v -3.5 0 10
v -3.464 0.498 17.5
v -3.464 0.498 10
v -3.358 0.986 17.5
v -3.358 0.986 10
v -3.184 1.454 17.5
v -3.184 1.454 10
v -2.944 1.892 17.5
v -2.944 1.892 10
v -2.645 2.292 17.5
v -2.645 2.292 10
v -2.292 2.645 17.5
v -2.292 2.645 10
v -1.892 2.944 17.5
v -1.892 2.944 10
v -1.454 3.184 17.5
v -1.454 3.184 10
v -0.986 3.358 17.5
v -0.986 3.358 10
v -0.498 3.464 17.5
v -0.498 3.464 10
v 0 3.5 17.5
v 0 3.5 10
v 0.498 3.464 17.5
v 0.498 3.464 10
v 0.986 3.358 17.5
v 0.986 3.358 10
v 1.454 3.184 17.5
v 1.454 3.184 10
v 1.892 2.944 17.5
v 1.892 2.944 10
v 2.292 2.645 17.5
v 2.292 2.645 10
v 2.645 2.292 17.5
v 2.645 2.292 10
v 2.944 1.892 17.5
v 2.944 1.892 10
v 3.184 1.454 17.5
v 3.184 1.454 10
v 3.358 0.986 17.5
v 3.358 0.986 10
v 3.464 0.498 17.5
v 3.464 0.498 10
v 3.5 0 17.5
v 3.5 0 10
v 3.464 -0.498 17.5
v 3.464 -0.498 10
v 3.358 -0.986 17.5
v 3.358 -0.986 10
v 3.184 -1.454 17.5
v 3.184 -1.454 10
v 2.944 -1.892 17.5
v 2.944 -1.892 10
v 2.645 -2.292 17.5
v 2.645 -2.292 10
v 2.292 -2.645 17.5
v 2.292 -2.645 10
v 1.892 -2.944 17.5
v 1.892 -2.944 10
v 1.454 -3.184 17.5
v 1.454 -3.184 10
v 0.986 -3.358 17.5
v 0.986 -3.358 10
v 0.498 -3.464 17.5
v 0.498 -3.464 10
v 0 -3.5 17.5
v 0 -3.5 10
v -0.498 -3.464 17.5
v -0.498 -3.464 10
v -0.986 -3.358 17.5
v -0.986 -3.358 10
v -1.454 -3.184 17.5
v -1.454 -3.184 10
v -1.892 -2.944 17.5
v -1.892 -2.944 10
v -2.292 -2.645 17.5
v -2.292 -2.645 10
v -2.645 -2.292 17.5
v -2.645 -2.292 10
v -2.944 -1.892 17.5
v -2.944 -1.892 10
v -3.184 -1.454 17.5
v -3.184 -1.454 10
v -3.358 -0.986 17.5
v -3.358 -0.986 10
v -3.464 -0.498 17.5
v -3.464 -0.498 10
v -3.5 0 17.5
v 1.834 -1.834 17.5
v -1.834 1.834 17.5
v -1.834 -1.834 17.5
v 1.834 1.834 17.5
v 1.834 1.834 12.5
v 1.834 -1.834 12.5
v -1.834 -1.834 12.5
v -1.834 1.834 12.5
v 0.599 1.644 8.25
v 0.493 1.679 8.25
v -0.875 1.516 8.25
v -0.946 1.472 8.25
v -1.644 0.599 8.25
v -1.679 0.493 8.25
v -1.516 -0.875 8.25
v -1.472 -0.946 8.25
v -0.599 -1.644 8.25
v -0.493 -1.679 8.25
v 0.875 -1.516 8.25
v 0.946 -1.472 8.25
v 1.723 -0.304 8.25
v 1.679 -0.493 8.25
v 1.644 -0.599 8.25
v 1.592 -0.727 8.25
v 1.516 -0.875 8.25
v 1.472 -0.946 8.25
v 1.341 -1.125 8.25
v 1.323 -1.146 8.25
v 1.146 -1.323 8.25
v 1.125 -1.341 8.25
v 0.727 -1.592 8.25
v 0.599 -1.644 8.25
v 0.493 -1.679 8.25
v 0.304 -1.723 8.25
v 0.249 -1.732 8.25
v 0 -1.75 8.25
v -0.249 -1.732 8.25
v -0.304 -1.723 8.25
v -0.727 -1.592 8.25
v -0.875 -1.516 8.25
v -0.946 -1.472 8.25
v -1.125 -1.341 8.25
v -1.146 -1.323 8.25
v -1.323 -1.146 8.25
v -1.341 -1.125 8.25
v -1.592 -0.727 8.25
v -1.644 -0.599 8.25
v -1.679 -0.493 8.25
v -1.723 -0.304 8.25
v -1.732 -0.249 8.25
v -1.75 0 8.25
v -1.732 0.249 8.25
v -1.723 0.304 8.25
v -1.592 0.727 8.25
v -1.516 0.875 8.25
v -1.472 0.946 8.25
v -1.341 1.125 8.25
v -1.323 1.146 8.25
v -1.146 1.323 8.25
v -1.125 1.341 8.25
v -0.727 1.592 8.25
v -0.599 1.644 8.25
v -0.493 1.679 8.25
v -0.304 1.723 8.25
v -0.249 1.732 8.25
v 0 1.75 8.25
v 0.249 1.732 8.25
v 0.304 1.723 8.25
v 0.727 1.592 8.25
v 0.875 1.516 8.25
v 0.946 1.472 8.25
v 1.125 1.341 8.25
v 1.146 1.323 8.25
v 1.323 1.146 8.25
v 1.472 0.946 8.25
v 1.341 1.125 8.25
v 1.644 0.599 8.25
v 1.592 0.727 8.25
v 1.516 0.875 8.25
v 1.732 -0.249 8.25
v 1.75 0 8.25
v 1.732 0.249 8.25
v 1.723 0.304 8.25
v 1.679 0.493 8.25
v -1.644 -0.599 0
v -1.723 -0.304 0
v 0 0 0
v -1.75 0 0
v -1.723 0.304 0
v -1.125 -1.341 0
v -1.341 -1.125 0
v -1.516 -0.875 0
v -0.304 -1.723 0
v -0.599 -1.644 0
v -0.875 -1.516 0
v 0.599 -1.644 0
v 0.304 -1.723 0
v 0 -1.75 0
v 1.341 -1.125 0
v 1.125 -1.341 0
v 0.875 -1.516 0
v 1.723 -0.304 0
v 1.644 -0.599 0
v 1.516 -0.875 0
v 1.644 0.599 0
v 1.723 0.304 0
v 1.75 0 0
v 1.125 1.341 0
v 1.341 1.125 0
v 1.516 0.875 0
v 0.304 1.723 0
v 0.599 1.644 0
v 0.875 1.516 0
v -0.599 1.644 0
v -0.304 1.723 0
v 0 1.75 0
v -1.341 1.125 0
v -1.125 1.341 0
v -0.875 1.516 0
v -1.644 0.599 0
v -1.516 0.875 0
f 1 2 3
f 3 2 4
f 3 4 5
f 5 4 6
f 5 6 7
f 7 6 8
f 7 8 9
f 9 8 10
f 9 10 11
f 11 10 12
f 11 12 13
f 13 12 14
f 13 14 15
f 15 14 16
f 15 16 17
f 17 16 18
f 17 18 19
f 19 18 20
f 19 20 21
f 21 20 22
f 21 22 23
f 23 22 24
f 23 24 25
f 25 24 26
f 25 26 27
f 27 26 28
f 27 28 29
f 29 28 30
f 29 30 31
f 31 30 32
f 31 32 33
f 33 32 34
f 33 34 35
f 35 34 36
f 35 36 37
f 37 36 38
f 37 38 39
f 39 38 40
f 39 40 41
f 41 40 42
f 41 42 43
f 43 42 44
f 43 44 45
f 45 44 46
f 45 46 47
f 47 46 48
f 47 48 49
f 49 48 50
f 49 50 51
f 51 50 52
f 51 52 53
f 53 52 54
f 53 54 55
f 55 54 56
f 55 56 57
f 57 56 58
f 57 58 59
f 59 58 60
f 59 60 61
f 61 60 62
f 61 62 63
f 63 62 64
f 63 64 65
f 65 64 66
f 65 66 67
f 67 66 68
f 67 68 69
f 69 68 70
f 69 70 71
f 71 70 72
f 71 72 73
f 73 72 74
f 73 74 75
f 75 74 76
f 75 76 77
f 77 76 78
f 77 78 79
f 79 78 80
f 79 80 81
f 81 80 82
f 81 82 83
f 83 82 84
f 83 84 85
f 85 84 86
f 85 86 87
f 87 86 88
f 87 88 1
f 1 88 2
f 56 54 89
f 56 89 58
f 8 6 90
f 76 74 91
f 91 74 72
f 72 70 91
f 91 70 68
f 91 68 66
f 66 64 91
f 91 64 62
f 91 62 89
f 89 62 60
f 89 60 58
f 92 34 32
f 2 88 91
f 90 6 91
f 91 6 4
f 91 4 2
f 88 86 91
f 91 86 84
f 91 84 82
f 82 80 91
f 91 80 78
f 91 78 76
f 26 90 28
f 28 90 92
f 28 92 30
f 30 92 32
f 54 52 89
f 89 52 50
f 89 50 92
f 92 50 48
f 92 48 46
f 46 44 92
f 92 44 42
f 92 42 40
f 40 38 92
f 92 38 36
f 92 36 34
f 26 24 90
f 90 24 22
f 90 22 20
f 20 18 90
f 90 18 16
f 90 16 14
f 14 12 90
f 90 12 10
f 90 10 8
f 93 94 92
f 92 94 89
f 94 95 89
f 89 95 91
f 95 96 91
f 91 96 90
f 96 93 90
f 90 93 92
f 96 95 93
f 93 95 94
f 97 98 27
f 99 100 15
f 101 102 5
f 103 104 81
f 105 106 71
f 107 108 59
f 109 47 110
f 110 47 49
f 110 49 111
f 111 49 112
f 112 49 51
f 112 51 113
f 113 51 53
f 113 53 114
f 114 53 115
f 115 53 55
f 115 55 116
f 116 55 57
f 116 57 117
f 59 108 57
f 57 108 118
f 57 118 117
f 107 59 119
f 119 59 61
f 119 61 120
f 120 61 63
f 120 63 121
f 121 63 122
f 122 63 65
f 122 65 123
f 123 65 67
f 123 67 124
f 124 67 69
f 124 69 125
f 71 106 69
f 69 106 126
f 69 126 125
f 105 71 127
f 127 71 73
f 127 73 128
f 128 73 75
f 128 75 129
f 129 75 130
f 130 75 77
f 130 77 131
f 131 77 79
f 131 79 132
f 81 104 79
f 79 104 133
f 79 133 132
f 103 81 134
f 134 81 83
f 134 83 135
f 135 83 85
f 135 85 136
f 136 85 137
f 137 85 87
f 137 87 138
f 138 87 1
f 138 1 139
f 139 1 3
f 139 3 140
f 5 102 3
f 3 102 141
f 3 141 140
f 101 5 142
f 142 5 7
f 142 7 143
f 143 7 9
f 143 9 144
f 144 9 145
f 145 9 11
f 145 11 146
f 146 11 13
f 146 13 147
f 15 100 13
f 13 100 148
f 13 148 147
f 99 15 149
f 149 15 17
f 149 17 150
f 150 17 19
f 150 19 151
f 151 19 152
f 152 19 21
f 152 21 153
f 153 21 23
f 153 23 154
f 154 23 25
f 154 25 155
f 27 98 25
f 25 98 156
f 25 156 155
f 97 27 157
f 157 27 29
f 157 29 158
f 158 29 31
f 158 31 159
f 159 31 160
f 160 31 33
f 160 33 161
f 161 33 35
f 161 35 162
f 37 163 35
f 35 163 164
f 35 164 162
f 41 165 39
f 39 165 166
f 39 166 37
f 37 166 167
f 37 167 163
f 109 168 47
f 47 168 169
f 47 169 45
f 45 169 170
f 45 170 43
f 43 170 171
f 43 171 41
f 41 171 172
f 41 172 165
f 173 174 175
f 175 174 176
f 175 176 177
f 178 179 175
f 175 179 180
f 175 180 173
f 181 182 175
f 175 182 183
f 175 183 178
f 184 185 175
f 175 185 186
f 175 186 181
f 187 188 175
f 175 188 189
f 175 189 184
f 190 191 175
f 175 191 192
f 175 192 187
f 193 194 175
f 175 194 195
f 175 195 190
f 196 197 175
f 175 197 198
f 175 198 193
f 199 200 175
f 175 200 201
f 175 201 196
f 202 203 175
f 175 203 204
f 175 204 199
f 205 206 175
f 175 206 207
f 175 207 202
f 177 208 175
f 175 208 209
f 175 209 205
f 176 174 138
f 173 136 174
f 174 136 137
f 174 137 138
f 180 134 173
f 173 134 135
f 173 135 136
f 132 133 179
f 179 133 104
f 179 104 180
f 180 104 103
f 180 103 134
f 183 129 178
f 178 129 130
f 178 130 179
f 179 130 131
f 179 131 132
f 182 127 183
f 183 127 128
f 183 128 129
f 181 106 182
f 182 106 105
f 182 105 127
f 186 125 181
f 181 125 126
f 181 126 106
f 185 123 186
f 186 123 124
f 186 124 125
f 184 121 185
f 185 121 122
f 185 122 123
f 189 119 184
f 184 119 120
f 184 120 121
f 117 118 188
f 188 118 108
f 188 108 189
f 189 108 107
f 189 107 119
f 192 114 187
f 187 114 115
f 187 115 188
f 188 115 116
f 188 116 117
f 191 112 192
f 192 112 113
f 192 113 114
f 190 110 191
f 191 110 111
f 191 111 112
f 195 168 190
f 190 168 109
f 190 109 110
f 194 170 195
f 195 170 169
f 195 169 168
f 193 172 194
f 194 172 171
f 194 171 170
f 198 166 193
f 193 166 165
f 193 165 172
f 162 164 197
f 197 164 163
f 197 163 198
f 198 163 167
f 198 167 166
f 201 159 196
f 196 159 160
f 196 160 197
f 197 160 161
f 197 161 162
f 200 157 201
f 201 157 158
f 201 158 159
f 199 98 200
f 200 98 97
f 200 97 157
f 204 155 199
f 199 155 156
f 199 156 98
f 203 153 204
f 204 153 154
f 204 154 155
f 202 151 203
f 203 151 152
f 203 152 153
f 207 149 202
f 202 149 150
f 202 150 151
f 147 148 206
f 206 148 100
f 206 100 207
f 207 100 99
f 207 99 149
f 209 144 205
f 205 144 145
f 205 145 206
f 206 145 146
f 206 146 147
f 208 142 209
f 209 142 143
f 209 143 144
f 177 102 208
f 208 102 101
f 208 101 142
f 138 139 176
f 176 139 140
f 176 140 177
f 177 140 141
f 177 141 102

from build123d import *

# Parameters (mm, degrees)
BOSS_EXTRUDE1_DEPTH    = 10
SKETCH2_R              = 3.5
BOSS_EXTRUDE2_DEPTH    = 7.5
SKETCH3_W              = 3.66759605
SKETCH3_H              = 3.66756905
CUT_EXTRUDE1_DEPTH     = 5
BOSS_EXTRUDE3_REACH    = 20.187
CUT_EXTRUDE4_OUTLINE_W = 1.75
CUT_EXTRUDE4_OUTLINE_H = 10


# Read off the part's stored shape, not the designer's step: Cut-Extrude4
with BuildPart() as part:
    # Sketch1 → Boss-Extrude1 (new body)
    with BuildSketch(Plane.XY):
        with BuildLine():
            ThreePointArc((-2.449489743, 2.5), (0, -3.5), (2.449489743, 2.5))
            ThreePointArc((2.449489743, 2.5), (0, 3.5), (-2.449489743, 2.5))
        make_face()
        with BuildLine():
            Line((-2, 1.5), (2, 1.5))
            ThreePointArc((2, 1.5), (0, -2.5), (-2, 1.5))
        make_face(mode=Mode.SUBTRACT)
    extrude(amount=BOSS_EXTRUDE1_DEPTH)

    # Sketch2 → Boss-Extrude2 (add)
    with BuildSketch(Plane.XY.offset(10)):
        Circle(SKETCH2_R)
    extrude(amount=BOSS_EXTRUDE2_DEPTH)

    # Sketch3 → Cut-Extrude1 (cut)
    with BuildSketch(Plane.XY.offset(17.5)):
        Rectangle(SKETCH3_W, SKETCH3_H)
    extrude(amount=-CUT_EXTRUDE1_DEPTH, mode=Mode.SUBTRACT)

    # Sketch1<2> → Boss-Extrude3 (add, up to next)
    with BuildSketch(Plane.XY, mode=Mode.PRIVATE) as boss_extrude3_sk1:
        with BuildLine():
            Line((-2, 1.5), (2, 1.5))
            ThreePointArc((2, 1.5), (0, -2.5), (-2, 1.5))
        make_face()
    boss_extrude3_tool1 = extrude(boss_extrude3_sk1.sketch, amount=BOSS_EXTRUDE3_REACH, mode=Mode.PRIVATE) - part.part
    add(boss_extrude3_tool1.solids().sort_by_distance((0, -0.316718, 0))[0])

    # Cut-Extrude4 outline → Cut-Extrude4 (revolve, cut)
    with BuildSketch(Plane.XZ):
        with Locations((2.625, 5)):
            Rectangle(CUT_EXTRUDE4_OUTLINE_W, CUT_EXTRUDE4_OUTLINE_H)
    revolve(axis=Axis((0, 0, 0), (0, 0, 1)), mode=Mode.SUBTRACT)

    # Sketch6 → Revolve1 (revolve)
    with BuildSketch(Plane(origin=(0, 0, 0), x_dir=(1, 0, 0), z_dir=(0, 1, 0))):
        Polygon((-3.5, -10), (-1.75, -10), (-1.75, -8.25), align=None)
    revolve(axis=Axis((0, 0, 10), (0, 0, -1)))


solid = part.part
